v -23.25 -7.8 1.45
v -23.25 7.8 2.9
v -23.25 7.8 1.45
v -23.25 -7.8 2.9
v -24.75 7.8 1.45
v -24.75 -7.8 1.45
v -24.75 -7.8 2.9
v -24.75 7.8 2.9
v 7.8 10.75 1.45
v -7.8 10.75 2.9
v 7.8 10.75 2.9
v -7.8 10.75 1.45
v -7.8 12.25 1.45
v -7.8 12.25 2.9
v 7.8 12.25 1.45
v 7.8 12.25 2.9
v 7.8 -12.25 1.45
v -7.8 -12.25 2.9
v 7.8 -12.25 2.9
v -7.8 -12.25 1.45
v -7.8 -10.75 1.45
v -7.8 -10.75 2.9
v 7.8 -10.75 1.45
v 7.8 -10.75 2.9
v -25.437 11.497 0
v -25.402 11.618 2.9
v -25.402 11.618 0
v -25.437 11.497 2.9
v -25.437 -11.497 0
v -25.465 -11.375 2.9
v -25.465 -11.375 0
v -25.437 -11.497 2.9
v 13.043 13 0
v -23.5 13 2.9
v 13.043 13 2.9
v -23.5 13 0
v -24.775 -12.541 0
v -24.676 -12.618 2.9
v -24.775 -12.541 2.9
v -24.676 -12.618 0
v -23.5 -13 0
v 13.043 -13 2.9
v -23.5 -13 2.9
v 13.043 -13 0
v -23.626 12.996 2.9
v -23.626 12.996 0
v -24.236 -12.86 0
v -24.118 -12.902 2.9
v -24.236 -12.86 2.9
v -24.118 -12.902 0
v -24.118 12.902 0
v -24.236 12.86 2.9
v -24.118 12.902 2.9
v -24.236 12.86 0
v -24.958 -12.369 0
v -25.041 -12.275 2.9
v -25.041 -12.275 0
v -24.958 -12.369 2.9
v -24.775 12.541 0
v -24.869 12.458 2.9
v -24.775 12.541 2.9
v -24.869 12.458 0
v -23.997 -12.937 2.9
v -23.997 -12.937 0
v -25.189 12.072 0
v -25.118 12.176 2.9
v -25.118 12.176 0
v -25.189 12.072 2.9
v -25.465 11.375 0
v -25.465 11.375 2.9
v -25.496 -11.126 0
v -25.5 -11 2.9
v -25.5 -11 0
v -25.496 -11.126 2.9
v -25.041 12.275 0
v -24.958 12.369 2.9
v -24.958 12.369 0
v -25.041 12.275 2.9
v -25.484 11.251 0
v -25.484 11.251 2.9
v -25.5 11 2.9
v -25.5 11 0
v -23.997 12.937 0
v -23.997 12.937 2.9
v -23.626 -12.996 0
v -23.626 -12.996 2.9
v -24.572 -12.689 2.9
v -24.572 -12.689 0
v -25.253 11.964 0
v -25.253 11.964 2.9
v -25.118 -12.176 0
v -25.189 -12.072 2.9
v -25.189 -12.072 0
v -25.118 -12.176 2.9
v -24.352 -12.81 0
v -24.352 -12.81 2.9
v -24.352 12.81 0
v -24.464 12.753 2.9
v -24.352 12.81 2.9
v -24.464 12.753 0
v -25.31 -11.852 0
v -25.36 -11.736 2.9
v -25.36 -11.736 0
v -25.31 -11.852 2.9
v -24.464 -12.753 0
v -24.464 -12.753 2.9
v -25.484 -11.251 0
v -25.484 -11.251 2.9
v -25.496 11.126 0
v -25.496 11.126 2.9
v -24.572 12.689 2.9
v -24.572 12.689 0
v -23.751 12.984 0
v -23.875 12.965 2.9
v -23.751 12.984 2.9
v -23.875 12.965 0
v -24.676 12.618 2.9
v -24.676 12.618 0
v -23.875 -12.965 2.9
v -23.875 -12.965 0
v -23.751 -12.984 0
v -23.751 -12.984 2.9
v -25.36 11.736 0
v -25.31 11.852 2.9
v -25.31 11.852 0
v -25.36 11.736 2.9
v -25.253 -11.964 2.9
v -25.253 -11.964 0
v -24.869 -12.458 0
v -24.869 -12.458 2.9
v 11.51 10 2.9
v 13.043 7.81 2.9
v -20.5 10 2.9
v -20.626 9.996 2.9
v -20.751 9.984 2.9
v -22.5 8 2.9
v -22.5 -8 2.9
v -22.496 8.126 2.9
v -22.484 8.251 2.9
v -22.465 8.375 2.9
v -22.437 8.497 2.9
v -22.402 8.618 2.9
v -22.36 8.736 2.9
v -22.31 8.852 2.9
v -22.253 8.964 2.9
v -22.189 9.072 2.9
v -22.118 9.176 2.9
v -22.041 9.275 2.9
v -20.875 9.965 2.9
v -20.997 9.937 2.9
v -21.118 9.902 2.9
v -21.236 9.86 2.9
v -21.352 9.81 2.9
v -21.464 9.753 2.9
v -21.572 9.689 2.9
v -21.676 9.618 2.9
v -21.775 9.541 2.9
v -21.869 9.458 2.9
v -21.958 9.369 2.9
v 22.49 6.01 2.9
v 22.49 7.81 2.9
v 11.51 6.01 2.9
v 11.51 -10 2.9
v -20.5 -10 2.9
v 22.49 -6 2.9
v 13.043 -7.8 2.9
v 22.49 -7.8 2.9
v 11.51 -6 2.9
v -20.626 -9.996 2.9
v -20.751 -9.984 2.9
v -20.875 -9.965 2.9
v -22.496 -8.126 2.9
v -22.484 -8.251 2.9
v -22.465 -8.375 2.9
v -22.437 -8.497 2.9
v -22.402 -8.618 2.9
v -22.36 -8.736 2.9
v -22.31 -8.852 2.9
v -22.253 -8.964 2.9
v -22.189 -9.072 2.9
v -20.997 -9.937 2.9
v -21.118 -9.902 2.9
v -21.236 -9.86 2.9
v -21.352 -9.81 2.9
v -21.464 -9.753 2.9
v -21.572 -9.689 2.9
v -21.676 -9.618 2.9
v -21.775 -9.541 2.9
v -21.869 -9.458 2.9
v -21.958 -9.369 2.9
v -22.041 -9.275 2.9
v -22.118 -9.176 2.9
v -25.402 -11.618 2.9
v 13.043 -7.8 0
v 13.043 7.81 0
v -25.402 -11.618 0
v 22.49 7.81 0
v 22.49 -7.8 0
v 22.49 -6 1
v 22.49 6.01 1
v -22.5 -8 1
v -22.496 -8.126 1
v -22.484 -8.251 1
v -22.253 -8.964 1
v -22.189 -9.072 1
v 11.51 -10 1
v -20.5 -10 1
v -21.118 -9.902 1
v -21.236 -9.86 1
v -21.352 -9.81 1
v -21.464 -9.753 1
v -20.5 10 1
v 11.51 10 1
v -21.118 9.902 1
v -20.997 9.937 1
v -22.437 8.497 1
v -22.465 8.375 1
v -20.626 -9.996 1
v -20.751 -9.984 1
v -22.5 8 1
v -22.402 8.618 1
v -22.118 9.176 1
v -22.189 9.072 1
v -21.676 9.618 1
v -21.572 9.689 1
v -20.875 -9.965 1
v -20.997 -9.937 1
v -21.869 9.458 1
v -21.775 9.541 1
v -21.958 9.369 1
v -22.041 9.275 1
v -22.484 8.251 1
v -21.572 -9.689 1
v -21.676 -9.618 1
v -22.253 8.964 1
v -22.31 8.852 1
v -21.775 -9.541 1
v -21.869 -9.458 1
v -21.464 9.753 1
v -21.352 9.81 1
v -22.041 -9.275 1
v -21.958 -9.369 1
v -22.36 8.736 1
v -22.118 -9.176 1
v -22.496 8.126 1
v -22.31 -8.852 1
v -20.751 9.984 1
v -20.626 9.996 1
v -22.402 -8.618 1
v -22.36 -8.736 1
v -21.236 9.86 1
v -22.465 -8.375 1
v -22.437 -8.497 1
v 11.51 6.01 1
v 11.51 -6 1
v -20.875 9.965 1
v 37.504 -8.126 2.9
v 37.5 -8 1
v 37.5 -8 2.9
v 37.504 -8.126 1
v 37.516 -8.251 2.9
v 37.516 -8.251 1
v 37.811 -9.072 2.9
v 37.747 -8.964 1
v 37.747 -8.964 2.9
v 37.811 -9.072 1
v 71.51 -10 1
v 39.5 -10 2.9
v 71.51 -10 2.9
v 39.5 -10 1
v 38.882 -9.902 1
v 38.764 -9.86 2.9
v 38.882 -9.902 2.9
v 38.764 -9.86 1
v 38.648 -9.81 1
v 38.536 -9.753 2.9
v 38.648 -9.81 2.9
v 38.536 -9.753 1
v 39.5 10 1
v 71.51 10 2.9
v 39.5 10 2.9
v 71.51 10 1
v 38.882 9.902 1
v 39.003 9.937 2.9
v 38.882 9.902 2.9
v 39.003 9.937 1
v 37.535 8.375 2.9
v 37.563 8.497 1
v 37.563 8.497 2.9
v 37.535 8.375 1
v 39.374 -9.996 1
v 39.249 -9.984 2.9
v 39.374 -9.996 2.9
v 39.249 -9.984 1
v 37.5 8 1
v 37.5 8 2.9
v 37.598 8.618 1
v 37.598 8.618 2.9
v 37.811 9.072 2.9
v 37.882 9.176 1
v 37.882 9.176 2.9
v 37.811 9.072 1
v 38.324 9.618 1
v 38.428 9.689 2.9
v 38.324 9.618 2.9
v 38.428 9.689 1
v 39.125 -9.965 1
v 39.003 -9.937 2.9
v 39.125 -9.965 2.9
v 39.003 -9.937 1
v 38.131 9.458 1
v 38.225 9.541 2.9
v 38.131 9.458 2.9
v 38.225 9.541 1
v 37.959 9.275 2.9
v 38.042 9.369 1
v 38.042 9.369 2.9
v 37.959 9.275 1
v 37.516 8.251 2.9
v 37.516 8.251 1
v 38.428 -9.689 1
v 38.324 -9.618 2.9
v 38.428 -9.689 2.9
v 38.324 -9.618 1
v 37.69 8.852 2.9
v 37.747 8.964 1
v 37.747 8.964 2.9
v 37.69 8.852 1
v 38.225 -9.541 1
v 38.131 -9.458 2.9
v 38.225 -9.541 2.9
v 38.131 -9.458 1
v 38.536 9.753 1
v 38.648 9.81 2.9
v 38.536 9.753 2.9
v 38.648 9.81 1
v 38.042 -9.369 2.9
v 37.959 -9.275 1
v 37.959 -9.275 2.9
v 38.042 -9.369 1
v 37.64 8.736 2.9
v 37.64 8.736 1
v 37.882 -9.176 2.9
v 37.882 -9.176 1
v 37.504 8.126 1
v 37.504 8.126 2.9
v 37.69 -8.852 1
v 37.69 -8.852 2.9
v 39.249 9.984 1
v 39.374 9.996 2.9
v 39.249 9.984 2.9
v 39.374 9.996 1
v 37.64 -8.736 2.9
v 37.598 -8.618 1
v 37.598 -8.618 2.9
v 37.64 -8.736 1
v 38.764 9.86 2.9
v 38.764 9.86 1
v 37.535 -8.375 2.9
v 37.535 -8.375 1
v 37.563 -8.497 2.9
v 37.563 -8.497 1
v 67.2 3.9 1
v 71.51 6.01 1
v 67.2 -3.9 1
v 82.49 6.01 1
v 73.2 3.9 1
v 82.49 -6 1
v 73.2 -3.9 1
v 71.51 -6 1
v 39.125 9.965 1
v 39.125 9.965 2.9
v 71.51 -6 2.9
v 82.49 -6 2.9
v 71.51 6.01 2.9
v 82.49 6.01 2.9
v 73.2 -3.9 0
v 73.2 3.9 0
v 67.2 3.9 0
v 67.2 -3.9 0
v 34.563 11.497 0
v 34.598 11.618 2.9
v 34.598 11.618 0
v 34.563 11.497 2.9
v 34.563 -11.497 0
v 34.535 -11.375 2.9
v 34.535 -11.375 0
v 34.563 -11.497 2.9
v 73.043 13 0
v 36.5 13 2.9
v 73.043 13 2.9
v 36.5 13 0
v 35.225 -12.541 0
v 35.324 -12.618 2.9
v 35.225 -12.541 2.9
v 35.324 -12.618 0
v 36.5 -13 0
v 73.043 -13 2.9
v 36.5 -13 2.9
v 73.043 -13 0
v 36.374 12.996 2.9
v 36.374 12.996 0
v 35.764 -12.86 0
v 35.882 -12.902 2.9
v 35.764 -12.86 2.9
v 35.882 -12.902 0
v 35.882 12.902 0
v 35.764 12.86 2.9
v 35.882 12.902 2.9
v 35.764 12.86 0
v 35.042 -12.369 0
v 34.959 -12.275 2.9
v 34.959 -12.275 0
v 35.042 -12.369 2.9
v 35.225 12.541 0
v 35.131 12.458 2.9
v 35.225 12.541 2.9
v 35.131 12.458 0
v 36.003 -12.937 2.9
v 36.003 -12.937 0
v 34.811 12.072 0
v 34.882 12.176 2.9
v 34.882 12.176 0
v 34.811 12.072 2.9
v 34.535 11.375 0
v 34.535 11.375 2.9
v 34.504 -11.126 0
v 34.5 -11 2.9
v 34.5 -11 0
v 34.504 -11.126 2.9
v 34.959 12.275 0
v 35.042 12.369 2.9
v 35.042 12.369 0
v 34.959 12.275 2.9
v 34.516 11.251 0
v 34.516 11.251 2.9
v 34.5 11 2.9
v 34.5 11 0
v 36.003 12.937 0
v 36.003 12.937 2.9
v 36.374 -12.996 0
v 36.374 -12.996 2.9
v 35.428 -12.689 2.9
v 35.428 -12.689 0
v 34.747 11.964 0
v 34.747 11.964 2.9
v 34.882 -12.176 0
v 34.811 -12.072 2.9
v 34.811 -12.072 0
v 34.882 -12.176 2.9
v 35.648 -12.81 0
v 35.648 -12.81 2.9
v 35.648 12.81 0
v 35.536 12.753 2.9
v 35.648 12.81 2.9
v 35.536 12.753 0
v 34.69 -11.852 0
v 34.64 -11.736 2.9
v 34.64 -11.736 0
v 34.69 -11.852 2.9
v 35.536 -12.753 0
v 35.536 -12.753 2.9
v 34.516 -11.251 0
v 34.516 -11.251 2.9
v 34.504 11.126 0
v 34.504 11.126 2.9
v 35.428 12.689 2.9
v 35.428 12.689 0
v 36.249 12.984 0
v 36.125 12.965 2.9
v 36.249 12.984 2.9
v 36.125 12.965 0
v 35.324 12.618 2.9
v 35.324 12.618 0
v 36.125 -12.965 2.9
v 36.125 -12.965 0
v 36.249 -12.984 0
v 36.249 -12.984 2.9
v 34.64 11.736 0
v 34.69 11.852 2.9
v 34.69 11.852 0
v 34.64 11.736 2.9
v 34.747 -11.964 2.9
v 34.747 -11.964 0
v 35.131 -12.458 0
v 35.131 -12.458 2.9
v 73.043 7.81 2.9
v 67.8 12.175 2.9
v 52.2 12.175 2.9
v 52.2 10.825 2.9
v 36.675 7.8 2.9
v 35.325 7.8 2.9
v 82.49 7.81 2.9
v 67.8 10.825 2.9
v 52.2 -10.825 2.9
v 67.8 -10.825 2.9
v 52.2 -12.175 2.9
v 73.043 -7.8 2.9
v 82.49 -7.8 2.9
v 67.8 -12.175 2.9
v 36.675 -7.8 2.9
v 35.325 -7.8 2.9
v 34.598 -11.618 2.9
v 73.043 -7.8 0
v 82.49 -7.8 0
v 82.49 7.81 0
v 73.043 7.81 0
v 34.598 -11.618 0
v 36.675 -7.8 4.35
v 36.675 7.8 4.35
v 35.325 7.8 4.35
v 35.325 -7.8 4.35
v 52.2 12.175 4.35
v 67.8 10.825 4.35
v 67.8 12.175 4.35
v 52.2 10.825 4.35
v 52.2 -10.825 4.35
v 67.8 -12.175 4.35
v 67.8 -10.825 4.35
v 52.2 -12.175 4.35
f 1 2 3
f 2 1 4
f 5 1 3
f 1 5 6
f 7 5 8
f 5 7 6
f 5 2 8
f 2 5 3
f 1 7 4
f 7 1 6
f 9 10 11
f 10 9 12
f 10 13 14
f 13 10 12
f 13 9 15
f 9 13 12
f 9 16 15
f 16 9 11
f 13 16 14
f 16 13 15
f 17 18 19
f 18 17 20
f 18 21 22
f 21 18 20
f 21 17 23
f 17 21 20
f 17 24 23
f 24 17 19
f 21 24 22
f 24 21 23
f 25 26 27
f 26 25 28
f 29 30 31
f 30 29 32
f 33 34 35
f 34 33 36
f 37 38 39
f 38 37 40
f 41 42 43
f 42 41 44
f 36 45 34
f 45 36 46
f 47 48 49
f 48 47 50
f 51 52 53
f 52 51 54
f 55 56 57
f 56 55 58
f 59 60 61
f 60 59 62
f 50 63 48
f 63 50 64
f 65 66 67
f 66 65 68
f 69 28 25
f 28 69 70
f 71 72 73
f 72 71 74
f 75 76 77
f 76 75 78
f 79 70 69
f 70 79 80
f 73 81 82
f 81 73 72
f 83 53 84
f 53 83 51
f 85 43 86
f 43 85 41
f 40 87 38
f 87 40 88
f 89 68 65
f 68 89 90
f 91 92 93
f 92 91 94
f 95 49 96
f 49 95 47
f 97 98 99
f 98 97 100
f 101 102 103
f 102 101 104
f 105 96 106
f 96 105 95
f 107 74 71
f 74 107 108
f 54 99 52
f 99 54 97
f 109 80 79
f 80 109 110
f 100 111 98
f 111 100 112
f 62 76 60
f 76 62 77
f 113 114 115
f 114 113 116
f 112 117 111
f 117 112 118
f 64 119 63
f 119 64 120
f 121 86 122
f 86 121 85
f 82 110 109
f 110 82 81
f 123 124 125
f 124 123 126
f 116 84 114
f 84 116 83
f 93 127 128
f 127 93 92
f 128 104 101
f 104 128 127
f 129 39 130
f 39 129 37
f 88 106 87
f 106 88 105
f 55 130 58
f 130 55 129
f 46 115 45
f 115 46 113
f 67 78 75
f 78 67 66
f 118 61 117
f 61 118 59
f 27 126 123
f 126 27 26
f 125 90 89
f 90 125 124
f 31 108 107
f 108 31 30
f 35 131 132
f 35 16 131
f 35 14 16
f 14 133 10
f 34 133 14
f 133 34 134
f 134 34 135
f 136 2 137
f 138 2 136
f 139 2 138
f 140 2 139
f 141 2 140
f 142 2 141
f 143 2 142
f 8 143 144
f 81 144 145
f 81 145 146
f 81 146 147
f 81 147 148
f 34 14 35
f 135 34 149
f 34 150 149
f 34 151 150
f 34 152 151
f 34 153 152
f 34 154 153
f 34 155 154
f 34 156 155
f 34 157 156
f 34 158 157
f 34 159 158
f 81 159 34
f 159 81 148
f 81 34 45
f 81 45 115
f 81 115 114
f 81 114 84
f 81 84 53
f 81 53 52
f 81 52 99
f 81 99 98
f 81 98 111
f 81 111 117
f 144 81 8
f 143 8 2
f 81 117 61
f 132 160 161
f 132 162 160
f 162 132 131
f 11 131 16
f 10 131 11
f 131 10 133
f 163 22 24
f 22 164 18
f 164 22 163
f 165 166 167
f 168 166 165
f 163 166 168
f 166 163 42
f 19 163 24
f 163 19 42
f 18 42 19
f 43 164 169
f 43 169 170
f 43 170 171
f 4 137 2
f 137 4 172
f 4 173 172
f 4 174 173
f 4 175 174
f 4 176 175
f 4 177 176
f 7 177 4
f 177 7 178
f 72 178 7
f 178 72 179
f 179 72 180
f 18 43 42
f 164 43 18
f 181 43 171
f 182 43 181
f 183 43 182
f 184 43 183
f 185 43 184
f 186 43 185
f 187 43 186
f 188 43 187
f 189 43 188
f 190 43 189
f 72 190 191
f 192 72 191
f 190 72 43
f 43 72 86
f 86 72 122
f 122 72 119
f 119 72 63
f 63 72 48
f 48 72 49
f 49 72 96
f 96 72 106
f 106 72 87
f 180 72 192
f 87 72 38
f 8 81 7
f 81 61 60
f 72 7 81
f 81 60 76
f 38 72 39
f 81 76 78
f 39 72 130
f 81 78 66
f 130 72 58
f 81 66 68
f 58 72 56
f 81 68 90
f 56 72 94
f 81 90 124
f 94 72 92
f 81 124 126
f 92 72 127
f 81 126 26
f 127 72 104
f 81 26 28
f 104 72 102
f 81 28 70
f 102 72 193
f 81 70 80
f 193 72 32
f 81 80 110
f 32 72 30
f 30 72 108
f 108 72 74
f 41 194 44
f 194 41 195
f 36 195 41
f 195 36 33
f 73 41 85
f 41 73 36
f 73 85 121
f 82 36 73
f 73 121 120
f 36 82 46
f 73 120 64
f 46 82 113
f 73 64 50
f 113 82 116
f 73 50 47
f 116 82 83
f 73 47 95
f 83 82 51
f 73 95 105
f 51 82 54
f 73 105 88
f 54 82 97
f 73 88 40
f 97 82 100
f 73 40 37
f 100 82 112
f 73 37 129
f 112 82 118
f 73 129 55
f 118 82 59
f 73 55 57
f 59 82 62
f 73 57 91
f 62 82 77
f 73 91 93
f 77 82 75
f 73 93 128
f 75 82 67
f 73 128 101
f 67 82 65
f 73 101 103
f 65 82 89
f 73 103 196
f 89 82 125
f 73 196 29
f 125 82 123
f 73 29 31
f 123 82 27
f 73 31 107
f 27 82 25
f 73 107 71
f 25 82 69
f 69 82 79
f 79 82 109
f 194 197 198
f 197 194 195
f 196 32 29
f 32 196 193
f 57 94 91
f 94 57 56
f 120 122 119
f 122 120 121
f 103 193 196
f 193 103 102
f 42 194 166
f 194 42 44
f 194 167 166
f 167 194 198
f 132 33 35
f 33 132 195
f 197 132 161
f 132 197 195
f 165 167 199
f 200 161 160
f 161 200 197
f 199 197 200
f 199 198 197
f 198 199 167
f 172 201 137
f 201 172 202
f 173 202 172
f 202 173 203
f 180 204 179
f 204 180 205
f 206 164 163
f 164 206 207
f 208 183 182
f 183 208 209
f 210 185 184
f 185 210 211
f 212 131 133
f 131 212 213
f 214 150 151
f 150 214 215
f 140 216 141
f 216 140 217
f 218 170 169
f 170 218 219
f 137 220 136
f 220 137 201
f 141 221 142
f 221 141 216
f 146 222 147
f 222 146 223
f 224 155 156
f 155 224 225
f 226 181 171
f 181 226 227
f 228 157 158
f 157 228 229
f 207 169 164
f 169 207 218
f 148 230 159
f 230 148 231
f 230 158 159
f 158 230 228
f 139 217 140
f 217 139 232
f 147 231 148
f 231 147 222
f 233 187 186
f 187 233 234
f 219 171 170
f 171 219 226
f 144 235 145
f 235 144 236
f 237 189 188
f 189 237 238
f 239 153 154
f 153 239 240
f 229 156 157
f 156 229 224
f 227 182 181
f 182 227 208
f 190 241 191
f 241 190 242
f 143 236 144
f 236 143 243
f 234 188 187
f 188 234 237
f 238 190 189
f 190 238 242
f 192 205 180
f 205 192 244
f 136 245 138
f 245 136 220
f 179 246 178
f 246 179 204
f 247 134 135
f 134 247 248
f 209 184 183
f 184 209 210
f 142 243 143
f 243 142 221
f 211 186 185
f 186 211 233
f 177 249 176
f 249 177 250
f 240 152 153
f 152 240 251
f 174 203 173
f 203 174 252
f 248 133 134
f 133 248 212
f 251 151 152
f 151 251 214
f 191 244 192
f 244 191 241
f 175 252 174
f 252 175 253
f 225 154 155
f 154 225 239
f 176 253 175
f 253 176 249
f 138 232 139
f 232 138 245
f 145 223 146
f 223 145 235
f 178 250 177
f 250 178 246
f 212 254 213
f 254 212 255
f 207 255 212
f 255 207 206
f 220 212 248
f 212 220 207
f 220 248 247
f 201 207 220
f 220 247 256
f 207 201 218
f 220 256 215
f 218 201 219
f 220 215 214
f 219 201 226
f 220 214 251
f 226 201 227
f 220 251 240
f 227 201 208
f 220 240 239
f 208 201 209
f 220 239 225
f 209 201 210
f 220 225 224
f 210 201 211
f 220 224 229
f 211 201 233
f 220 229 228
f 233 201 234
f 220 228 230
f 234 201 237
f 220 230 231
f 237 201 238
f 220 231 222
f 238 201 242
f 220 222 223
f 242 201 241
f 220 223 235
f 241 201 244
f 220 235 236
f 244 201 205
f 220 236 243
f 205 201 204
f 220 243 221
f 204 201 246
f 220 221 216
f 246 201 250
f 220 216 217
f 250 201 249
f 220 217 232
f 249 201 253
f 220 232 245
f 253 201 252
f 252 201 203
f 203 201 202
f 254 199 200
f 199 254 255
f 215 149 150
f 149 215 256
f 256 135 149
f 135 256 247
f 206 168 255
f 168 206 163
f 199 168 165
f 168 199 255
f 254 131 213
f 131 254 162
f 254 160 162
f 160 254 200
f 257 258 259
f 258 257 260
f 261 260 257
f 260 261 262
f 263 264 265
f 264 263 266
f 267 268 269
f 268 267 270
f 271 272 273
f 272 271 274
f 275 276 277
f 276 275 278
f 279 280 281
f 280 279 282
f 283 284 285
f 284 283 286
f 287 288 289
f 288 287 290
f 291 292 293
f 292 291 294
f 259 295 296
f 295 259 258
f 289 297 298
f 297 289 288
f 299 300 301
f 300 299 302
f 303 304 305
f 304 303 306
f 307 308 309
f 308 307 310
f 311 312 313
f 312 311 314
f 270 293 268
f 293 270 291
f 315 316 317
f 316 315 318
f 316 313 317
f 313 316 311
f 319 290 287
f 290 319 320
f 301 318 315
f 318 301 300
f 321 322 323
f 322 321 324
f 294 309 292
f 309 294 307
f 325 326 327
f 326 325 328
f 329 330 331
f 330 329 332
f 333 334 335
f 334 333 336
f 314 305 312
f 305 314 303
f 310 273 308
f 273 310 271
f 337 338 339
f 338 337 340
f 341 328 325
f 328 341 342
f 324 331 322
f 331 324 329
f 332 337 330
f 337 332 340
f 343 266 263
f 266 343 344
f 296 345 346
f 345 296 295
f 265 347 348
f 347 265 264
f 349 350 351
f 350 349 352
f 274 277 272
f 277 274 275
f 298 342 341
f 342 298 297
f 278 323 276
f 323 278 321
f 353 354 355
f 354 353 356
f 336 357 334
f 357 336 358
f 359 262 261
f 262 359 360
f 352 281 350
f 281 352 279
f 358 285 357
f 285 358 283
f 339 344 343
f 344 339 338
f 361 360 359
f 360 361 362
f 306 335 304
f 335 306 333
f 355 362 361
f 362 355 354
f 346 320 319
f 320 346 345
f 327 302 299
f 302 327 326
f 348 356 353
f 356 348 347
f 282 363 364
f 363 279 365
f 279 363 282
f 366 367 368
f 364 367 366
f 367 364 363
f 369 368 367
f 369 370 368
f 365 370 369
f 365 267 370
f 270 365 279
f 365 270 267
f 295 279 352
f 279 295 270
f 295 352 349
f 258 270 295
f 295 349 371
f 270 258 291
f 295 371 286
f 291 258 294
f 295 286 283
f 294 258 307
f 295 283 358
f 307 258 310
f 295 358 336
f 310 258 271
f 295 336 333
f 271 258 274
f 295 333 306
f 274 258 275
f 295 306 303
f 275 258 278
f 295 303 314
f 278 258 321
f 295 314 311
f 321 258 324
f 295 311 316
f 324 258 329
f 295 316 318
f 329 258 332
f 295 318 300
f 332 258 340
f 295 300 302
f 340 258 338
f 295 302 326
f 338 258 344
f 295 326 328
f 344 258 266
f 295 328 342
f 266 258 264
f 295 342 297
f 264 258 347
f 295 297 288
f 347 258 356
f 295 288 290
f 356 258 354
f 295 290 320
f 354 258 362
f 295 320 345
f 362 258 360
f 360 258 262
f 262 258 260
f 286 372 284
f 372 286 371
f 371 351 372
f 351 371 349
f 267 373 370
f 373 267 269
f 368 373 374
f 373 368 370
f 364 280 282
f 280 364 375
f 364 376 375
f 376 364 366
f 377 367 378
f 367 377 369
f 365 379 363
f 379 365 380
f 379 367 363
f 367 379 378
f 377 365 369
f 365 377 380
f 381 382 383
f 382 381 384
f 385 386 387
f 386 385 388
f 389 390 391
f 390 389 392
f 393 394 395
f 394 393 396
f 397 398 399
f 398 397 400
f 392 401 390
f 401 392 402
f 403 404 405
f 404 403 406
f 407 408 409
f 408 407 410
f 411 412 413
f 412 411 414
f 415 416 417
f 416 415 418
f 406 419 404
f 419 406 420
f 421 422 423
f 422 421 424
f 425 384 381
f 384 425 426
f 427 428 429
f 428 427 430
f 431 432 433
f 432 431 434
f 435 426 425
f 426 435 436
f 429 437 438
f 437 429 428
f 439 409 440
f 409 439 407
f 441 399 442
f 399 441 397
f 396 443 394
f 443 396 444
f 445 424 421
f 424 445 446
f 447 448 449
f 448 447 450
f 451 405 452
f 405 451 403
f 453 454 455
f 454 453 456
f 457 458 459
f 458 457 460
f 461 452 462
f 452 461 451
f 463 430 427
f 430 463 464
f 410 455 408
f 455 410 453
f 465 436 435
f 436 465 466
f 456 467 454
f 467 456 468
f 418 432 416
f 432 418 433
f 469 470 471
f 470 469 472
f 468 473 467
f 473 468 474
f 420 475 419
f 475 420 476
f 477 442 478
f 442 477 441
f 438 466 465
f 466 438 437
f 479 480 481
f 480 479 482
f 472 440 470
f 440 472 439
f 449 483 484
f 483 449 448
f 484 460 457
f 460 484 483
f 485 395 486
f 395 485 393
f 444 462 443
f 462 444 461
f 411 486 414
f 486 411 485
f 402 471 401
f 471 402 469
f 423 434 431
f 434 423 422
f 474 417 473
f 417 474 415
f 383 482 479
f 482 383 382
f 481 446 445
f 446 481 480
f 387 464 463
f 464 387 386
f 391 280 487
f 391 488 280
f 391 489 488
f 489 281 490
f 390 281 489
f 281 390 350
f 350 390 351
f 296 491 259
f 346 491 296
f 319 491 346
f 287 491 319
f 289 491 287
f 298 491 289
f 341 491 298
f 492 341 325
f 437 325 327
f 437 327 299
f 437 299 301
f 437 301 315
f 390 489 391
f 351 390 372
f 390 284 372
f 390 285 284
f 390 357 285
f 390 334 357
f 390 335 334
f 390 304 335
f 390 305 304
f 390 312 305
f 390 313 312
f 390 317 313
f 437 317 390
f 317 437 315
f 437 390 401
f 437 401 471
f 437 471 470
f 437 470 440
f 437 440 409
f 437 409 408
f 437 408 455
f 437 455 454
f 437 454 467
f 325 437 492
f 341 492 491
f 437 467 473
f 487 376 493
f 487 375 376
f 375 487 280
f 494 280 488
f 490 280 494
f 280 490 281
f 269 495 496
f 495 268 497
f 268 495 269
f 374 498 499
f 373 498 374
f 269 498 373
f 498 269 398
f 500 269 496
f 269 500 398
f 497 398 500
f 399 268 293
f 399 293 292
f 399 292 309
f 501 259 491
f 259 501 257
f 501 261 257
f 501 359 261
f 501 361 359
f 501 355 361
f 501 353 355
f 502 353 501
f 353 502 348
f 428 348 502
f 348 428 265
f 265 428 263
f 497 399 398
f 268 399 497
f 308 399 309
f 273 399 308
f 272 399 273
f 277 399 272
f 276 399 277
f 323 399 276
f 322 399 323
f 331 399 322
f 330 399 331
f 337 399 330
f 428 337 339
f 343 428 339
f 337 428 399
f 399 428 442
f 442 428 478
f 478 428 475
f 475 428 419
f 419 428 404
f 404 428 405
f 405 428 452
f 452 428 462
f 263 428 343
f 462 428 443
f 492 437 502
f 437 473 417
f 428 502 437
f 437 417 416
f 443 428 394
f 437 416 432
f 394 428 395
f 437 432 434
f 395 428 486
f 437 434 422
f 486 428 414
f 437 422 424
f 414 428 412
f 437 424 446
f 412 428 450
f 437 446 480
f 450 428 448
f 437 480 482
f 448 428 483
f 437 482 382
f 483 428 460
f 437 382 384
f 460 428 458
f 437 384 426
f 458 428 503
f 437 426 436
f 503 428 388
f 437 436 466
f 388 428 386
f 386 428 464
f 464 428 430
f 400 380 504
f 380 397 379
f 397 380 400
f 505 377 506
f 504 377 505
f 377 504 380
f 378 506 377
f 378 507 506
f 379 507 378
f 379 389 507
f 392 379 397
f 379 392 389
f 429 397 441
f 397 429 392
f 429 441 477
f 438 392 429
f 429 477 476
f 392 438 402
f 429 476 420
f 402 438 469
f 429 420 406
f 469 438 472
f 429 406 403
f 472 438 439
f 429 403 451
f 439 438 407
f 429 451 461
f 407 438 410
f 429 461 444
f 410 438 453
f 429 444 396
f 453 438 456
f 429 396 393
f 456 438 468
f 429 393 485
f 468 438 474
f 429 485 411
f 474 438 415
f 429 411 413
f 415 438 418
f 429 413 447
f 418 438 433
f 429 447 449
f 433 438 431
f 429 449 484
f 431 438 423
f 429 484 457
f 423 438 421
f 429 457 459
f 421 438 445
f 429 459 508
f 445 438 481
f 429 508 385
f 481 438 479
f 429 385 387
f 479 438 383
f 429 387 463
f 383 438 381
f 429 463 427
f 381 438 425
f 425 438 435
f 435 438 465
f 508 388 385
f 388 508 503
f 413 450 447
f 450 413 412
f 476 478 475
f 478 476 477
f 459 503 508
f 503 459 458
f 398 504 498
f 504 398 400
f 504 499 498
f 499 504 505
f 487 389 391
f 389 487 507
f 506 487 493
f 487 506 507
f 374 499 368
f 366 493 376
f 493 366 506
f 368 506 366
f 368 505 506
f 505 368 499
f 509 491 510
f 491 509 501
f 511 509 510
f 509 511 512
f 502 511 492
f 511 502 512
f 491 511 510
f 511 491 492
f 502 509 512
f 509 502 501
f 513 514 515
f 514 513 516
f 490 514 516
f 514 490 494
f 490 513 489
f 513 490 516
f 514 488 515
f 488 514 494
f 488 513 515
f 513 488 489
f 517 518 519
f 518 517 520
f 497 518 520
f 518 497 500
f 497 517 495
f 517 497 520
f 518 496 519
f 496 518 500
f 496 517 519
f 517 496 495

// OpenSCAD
/**
 * Enclosure for the TROPIC01 USB Devkit
 * All measurements in mm
 * @author Ondřej Hruboš (github.com/hruboson)
 */
$fn = 100; // fragment number - level of detail

// board dimensions
board_length = 45;
board_width = 20;
floor_thickness = 0.6;
max_component_height = 2.2; // tallest component/2
neck_width = 12;
neck_height = 11;
neck_start_x = board_length - neck_height;
board_to_neck_ratio_width = neck_width / board_width; // 60% ... maybe change the whole logic so I can adjust neck length
board_to_neck_ratio_height = neck_start_x / board_length;

// enclosure parameters
wall_thickness = 3;
clearance = 1.0;
total_height = floor_thickness + max_component_height + clearance;
clip_height = 3;
clip_undercut = 0.8;
half_height = total_height/2 + 1;

// alignment pin
pin_width = 1.5;
pin_depth = half_height;

// helper constants
RERR = 0.01; // rounding error

/**
 * Construct one half of the enclosure
 * @param {bool} [upper=false] - upper or lower case, changes the joints
 * @param {real} l - length
 * @param {real} w - width
 * @param {real} h - height
 * @param {bool} [base=true] - false to not generate any joints
 */
module enclosure_half(upper = false, l = undef, w = undef, h = undef, base = true) {
    length = (l == undef) ? board_length + 2*wall_thickness : l;
    width = (l == undef) ? board_width + 2*wall_thickness : w;
    height = (l == undef) ? half_height : h;
    
    difference() {
        rounded_rect(
            length,
            width,
            height,
            radius = 2
        );
        
        // cutoff from sides
        translate([length*board_to_neck_ratio_height + RERR, -RERR, -RERR])
        cube([
            length*(1-board_to_neck_ratio_height) + RERR,
            width*(1-board_to_neck_ratio_width)/2 + RERR,
            height + RERR*2
        ]);
        translate([
                length*board_to_neck_ratio_height + RERR, 
                width-width*(1-board_to_neck_ratio_width)/2 + RERR, 
                -RERR
            ])
        cube([
            length*(1-board_to_neck_ratio_height) + RERR,
            width*(1-board_to_neck_ratio_width)/2 + RERR,
            height + RERR*2
        ]);
        
        // cutoff at the neck top
        translate([board_length + wall_thickness - RERR, 0, -0.1])
        cube([wall_thickness + 2*RERR, width, height+3]);
        
        // joints
        if(!upper && base){        
            translate([wall_thickness*0.5, width / 2, height])
            cube([pin_width, width*0.6, pin_depth], center = true);
            
            translate([length / 2, width - wall_thickness*0.5, height])
            rotate(90)
            cube([pin_width, width*0.6, pin_depth], center = true);
            
            translate([length / 2, wall_thickness*0.5, height])
            rotate(90)
            cube([pin_width, width*0.6, pin_depth], center = true);
            }
        
        // hole for button
        if(upper && base){
            translate([length*0.7,width/2, -RERR])
            cube([6, width*0.3, half_height], center = true);
            
            translate([length*0.7,width/2, -RERR])
            cube([6, width*0.3, half_height], center = true);
        }
    }
    
    // upper half
    if(upper && base){
        pin_outwards_width = pin_width - 0.15; // this might need adjusting
        
        translate([wall_thickness*0.5, width / 2, height])
        cube([pin_outwards_width, width*0.6, pin_depth], center = true);
           
        translate([length / 2, width - wall_thickness*0.5, height])
        rotate(90)
        cube([pin_outwards_width, width*0.6, pin_depth], center = true);
        
        translate([length / 2, wall_thickness*0.5, height])
        rotate(90)
        cube([pin_outwards_width, width*0.6, pin_depth], center = true);
    }
}

/**
 * Create a rectangle with rounded corners and uniform height
 * @param {real} length - length of the rectangle along X-axis
 * @param {real} width - width of the rectangle along Y-axis
 * @param {real} height - height of the extruded shape along Z-axis
 * @param {real} [radius=2] - corner radius in mm
 */
module rounded_rect(length, width, height, radius=2) {
    hull() {
        translate([radius, radius, 0])
            cylinder(r=radius, h=height);
        translate([length-radius, radius, 0])
            cylinder(r=radius, h=height);
        translate([radius, width-radius, 0])
            cylinder(r=radius, h=height);
        translate([length-radius, width-radius, 0])
            cylinder(r=radius, h=height);
    }
}

//////////////////////
//      MAIN        //
//////////////////////

translate([-board_length/2 - wall_thickness, -board_width/2 - wall_thickness, 0]) {
    difference() {
        enclosure_half(l = board_length + 2*wall_thickness, w = board_width + 2*wall_thickness, h = half_height);
        
        translate([wall_thickness, wall_thickness, 1])
        enclosure_half(upper = false, l = board_length, w = board_width, h = half_height, base = false);
    }
}

translate([-board_length/2 - wall_thickness + 60, -board_width/2 - wall_thickness, 0]) {
    difference() {
        enclosure_half(upper = true, l = board_length + 2*wall_thickness, w = board_width + 2*wall_thickness, h = half_height);
        
        translate([wall_thickness, wall_thickness, 1])
        enclosure_half(upper = true, l = board_length, w = board_width, h = half_height, base = false);
    }
}
